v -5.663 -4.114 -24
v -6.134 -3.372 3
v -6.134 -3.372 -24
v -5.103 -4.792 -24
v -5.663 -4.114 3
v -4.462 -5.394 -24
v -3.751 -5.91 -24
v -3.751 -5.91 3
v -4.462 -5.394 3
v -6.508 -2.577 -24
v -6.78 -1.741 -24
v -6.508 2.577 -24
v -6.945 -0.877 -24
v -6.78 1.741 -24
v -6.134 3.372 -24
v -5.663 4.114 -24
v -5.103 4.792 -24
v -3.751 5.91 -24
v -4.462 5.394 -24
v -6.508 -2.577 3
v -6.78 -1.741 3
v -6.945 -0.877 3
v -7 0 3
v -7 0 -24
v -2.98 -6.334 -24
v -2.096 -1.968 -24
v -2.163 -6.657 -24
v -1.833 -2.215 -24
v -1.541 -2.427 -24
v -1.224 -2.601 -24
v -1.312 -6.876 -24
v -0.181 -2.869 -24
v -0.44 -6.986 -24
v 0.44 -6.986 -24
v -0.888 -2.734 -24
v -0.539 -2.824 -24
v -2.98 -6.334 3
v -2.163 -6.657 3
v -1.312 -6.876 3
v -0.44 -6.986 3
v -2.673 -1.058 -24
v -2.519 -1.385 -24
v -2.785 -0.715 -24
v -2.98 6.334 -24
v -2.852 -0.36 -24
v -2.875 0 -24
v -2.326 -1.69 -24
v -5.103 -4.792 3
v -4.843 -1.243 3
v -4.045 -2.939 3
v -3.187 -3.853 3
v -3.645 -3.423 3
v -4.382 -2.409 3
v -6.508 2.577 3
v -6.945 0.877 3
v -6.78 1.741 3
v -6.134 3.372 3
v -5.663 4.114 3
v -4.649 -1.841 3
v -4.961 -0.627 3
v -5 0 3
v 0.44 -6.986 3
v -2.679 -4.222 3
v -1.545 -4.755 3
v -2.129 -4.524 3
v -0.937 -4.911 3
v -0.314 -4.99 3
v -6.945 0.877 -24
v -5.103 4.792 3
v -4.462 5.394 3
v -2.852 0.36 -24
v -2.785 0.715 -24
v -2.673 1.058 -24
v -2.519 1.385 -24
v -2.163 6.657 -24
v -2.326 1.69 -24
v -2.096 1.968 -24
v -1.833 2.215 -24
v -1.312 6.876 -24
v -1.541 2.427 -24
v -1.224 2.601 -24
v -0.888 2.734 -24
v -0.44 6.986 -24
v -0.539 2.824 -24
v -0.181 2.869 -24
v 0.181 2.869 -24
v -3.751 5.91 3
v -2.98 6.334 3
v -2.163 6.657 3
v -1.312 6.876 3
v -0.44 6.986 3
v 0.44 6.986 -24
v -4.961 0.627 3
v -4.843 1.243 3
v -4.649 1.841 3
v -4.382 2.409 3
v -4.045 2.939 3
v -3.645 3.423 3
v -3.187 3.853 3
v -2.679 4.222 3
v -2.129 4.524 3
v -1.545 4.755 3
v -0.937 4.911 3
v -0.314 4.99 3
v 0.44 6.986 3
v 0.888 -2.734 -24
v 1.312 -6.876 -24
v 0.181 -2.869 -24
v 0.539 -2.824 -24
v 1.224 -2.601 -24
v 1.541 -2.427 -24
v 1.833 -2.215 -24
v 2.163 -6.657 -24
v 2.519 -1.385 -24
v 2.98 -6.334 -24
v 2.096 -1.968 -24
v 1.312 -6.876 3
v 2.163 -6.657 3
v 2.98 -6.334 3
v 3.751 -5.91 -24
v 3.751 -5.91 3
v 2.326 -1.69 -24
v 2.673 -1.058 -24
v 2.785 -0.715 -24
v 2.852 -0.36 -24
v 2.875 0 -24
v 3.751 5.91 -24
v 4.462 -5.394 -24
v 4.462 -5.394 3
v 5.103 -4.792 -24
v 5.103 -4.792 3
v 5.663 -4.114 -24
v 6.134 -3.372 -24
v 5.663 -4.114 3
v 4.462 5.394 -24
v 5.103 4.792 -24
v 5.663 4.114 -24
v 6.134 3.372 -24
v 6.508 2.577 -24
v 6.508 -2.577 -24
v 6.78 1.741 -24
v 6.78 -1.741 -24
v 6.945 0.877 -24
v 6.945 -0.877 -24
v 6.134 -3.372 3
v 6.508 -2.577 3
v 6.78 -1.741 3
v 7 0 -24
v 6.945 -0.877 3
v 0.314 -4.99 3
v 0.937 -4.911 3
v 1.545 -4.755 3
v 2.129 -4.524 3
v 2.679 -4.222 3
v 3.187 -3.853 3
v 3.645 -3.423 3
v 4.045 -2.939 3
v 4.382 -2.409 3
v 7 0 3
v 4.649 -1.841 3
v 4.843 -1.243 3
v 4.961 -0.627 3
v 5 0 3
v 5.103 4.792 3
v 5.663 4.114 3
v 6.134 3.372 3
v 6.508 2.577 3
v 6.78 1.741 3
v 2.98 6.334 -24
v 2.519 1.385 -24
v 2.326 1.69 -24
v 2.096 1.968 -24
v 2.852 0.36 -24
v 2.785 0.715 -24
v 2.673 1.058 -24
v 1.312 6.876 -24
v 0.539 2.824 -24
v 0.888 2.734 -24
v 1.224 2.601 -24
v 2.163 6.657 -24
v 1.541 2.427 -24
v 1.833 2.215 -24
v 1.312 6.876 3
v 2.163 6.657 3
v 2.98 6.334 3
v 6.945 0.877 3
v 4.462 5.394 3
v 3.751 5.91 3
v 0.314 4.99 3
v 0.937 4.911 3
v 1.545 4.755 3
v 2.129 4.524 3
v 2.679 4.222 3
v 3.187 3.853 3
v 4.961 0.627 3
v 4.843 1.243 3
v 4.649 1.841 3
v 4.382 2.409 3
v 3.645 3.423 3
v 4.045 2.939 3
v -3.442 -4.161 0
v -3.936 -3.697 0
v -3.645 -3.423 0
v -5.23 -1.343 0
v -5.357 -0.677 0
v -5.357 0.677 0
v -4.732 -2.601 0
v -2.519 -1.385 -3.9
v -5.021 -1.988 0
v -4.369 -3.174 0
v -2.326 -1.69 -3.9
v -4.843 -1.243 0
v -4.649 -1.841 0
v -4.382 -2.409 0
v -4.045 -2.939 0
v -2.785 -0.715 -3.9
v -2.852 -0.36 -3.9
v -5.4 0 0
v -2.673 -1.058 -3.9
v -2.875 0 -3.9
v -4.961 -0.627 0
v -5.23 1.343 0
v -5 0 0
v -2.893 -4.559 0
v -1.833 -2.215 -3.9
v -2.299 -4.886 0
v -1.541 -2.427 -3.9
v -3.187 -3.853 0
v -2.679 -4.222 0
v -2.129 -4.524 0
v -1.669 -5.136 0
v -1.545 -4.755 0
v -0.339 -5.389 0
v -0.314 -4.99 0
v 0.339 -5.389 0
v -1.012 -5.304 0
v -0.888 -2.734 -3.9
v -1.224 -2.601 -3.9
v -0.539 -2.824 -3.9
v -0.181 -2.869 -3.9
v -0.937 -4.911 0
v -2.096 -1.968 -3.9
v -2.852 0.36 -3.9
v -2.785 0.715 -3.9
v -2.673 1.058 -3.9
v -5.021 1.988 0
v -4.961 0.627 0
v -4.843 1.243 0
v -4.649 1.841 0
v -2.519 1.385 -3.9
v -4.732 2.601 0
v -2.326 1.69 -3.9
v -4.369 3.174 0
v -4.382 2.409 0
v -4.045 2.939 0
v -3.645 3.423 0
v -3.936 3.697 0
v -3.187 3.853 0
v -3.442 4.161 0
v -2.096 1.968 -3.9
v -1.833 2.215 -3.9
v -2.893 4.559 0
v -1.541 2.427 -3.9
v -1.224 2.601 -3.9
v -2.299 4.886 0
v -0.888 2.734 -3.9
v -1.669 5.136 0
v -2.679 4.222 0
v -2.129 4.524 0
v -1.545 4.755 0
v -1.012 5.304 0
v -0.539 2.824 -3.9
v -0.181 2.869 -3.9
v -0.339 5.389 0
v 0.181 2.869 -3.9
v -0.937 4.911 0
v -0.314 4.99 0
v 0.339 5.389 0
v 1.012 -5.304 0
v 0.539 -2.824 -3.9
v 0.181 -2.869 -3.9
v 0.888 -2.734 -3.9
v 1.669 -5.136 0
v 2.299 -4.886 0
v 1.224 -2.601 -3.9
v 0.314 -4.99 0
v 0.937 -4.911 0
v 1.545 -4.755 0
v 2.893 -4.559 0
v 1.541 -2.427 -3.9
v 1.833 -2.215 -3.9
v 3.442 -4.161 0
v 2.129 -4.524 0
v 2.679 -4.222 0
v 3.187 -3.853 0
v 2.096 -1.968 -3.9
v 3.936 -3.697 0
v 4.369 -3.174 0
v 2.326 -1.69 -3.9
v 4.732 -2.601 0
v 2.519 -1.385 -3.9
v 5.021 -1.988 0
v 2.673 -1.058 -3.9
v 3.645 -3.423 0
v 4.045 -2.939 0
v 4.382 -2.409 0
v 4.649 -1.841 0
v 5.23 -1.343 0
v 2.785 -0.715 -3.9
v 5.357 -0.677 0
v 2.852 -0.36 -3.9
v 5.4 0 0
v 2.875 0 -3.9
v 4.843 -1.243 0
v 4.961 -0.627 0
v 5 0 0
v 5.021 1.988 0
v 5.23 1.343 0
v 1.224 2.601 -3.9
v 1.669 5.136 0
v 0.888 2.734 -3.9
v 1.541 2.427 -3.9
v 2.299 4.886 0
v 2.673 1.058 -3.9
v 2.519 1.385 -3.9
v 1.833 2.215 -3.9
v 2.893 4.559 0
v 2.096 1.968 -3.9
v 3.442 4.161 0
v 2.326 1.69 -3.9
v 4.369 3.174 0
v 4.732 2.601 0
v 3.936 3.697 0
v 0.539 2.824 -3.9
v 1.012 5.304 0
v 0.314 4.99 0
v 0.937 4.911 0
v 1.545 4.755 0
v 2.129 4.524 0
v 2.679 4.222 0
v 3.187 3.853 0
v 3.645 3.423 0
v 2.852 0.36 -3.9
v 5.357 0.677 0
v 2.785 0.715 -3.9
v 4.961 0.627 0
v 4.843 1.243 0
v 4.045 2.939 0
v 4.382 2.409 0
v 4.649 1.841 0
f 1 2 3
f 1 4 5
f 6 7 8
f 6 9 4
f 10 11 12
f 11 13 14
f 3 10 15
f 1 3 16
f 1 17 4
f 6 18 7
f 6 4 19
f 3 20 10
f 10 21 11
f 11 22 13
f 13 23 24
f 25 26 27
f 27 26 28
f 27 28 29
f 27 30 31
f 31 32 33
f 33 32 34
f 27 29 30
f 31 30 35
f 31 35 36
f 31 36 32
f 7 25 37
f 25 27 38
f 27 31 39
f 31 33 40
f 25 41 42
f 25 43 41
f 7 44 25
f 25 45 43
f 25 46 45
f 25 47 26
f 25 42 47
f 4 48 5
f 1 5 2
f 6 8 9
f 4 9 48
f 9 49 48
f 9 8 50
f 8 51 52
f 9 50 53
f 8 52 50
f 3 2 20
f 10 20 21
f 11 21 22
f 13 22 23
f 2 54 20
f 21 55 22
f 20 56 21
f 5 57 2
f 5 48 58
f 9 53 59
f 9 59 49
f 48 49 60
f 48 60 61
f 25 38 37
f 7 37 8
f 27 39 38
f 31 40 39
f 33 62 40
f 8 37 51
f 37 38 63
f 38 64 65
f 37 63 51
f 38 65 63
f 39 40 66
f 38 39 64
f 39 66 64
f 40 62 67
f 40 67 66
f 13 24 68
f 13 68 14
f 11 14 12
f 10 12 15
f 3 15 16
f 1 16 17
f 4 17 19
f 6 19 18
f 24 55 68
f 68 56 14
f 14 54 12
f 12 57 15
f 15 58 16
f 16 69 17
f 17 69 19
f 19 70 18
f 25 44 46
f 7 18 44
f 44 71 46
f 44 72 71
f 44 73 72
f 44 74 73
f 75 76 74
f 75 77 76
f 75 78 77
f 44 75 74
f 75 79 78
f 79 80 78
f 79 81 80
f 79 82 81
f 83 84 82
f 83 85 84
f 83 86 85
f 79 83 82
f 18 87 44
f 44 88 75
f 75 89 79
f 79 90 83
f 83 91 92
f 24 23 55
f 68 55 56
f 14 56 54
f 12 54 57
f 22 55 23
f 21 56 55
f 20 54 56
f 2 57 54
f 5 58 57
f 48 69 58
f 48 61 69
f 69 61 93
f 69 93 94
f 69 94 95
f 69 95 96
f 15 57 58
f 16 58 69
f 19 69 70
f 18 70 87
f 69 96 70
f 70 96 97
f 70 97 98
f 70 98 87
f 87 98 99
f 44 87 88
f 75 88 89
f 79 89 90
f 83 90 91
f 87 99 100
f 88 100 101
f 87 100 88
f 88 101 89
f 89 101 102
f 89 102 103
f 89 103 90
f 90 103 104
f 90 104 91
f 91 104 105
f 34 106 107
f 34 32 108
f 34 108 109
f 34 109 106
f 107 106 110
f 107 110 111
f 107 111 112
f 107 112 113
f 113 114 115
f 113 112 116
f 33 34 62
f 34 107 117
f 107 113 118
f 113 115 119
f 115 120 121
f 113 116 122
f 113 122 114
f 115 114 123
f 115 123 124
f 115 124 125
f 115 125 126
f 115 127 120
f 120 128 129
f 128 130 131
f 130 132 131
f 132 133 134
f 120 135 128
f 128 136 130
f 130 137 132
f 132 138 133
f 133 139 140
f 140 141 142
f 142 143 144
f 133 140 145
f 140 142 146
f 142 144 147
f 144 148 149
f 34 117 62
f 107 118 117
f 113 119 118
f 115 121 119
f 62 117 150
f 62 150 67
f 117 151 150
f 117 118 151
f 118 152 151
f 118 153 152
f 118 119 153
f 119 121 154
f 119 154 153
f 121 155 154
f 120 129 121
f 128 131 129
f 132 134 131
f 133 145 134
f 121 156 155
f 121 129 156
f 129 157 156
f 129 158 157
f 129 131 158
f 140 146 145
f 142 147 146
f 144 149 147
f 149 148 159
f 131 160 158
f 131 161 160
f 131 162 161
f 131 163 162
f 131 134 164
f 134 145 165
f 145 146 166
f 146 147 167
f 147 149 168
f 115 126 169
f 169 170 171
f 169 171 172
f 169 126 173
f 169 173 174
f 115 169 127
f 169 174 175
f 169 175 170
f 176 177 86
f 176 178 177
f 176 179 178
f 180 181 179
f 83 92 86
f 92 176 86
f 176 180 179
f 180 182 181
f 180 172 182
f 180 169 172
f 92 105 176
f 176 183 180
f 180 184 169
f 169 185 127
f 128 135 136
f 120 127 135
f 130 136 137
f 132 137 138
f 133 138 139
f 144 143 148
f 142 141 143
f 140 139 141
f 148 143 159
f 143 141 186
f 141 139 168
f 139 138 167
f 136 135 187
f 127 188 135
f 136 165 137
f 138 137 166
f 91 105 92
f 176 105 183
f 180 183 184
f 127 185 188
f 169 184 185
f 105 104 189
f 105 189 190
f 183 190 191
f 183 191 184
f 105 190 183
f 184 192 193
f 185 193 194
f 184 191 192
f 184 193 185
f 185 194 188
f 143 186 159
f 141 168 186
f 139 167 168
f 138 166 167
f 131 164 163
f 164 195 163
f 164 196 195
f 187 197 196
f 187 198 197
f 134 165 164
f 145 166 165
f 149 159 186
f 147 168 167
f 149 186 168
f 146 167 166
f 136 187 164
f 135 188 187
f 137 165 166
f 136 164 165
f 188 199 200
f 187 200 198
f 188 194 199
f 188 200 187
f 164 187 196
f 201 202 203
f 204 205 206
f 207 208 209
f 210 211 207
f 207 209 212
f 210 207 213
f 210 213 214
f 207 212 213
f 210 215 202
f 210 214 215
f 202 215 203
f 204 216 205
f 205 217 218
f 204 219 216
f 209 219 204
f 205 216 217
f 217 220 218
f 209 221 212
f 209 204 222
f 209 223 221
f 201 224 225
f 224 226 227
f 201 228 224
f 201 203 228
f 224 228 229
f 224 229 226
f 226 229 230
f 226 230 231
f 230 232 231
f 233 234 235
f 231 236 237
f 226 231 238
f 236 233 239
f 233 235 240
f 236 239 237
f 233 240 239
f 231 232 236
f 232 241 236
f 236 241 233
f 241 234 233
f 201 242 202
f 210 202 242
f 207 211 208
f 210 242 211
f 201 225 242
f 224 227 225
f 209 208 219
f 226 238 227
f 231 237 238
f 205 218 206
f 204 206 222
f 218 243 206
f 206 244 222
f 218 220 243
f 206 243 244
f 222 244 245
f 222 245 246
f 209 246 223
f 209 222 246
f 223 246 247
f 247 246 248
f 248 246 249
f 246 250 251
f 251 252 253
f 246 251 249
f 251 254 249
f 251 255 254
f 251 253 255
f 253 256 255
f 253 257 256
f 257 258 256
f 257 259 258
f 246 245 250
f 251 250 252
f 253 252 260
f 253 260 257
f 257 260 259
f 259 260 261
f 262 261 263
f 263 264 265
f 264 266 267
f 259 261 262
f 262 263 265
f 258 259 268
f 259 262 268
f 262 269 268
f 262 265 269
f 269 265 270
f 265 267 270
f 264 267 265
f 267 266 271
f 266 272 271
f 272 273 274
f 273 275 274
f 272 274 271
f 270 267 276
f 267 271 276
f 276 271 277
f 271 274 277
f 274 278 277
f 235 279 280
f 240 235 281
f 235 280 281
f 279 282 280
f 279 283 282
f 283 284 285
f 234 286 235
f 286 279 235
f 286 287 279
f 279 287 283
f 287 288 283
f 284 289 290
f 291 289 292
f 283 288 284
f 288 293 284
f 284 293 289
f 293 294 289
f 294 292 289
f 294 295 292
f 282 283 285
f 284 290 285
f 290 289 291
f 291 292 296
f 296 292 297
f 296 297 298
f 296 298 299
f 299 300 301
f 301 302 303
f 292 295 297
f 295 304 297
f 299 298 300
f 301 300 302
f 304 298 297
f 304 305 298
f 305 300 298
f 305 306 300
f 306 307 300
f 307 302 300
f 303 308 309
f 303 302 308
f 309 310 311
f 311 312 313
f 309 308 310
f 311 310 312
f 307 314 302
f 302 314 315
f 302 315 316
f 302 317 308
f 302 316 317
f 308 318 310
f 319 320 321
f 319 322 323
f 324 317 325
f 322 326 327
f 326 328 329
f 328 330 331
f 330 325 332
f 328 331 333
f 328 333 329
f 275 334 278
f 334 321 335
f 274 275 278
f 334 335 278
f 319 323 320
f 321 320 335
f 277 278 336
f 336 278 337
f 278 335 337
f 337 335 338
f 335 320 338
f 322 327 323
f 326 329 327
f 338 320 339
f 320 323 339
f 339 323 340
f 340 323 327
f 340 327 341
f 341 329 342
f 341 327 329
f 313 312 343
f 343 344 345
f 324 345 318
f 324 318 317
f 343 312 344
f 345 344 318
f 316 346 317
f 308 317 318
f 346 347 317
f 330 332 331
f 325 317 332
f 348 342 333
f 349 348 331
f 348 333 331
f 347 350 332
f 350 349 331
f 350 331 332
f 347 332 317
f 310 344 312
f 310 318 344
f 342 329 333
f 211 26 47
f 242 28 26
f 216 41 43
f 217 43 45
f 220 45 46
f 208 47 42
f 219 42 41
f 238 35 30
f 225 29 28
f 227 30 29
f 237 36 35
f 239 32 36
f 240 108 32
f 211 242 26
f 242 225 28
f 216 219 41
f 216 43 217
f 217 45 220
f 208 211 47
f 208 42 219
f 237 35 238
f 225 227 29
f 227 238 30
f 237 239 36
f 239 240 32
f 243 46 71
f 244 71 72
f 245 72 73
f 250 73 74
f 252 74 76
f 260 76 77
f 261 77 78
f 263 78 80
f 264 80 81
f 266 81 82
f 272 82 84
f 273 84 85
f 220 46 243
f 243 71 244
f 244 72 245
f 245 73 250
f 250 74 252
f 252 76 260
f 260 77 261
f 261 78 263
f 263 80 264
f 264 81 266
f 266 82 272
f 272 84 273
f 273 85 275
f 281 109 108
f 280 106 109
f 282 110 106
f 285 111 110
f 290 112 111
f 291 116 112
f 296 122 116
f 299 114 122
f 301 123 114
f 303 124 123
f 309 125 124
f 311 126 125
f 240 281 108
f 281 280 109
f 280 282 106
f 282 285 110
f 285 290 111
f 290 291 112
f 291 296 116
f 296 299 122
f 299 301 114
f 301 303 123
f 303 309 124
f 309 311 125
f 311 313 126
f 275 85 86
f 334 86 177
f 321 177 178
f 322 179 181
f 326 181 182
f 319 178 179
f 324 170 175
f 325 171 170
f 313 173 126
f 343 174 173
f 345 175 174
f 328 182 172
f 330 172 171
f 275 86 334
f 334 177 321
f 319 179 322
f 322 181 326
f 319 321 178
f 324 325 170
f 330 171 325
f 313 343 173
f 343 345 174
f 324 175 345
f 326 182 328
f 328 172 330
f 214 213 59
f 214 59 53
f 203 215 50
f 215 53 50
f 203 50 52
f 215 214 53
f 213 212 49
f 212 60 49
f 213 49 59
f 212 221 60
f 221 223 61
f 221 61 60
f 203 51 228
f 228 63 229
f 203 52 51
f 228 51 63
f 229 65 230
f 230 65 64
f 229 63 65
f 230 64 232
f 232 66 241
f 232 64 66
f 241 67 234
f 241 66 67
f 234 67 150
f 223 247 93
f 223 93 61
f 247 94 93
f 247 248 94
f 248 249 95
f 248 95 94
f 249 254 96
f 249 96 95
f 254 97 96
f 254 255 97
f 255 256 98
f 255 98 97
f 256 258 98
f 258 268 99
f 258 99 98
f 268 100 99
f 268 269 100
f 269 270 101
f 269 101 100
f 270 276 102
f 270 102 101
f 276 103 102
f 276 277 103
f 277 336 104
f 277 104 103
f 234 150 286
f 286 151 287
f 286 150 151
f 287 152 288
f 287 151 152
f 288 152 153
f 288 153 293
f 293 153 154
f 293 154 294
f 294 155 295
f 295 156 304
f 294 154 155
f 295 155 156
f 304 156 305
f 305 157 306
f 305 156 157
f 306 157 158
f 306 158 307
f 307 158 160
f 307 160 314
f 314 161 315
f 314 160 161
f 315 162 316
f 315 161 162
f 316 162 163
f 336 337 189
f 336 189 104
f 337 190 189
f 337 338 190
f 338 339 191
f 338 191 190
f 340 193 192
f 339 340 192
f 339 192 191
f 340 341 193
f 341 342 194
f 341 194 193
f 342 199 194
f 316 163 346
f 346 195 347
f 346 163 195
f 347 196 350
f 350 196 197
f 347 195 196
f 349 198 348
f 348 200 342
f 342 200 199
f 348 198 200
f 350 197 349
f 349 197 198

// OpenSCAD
$fn = 50;


difference() {
	union() {
		translate(v = [0, 0, -24.0000000000]) {
			cylinder(h = 27, r = 7.0000000000);
		}
		#translate(v = [0, 0, -27.0000000000]) {
			cylinder(h = 27, r = 2.8750000000);
		}
	}
	union() {
		translate(v = [0, 0, 0]) {
			rotate(a = [0, 0, 0]) {
				difference() {
					union() {
						translate(v = [0, 0, -27.0000000000]) {
							cylinder(h = 27, r = 2.6000000000);
						}
						translate(v = [0, 0, -3.9000000000]) {
							cylinder(h = 3.9000000000, r1 = 2.8750000000, r2 = 5.4000000000);
						}
						translate(v = [0, 0, -27.0000000000]) {
							cylinder(h = 27, r = 2.8750000000);
						}
						translate(v = [0, 0, -27.0000000000]) {
							cylinder(h = 27, r = 2.6000000000);
						}
					}
					union();
				}
			}
		}
		#cylinder(h = 3, r = 5.0000000000);
	}
}
